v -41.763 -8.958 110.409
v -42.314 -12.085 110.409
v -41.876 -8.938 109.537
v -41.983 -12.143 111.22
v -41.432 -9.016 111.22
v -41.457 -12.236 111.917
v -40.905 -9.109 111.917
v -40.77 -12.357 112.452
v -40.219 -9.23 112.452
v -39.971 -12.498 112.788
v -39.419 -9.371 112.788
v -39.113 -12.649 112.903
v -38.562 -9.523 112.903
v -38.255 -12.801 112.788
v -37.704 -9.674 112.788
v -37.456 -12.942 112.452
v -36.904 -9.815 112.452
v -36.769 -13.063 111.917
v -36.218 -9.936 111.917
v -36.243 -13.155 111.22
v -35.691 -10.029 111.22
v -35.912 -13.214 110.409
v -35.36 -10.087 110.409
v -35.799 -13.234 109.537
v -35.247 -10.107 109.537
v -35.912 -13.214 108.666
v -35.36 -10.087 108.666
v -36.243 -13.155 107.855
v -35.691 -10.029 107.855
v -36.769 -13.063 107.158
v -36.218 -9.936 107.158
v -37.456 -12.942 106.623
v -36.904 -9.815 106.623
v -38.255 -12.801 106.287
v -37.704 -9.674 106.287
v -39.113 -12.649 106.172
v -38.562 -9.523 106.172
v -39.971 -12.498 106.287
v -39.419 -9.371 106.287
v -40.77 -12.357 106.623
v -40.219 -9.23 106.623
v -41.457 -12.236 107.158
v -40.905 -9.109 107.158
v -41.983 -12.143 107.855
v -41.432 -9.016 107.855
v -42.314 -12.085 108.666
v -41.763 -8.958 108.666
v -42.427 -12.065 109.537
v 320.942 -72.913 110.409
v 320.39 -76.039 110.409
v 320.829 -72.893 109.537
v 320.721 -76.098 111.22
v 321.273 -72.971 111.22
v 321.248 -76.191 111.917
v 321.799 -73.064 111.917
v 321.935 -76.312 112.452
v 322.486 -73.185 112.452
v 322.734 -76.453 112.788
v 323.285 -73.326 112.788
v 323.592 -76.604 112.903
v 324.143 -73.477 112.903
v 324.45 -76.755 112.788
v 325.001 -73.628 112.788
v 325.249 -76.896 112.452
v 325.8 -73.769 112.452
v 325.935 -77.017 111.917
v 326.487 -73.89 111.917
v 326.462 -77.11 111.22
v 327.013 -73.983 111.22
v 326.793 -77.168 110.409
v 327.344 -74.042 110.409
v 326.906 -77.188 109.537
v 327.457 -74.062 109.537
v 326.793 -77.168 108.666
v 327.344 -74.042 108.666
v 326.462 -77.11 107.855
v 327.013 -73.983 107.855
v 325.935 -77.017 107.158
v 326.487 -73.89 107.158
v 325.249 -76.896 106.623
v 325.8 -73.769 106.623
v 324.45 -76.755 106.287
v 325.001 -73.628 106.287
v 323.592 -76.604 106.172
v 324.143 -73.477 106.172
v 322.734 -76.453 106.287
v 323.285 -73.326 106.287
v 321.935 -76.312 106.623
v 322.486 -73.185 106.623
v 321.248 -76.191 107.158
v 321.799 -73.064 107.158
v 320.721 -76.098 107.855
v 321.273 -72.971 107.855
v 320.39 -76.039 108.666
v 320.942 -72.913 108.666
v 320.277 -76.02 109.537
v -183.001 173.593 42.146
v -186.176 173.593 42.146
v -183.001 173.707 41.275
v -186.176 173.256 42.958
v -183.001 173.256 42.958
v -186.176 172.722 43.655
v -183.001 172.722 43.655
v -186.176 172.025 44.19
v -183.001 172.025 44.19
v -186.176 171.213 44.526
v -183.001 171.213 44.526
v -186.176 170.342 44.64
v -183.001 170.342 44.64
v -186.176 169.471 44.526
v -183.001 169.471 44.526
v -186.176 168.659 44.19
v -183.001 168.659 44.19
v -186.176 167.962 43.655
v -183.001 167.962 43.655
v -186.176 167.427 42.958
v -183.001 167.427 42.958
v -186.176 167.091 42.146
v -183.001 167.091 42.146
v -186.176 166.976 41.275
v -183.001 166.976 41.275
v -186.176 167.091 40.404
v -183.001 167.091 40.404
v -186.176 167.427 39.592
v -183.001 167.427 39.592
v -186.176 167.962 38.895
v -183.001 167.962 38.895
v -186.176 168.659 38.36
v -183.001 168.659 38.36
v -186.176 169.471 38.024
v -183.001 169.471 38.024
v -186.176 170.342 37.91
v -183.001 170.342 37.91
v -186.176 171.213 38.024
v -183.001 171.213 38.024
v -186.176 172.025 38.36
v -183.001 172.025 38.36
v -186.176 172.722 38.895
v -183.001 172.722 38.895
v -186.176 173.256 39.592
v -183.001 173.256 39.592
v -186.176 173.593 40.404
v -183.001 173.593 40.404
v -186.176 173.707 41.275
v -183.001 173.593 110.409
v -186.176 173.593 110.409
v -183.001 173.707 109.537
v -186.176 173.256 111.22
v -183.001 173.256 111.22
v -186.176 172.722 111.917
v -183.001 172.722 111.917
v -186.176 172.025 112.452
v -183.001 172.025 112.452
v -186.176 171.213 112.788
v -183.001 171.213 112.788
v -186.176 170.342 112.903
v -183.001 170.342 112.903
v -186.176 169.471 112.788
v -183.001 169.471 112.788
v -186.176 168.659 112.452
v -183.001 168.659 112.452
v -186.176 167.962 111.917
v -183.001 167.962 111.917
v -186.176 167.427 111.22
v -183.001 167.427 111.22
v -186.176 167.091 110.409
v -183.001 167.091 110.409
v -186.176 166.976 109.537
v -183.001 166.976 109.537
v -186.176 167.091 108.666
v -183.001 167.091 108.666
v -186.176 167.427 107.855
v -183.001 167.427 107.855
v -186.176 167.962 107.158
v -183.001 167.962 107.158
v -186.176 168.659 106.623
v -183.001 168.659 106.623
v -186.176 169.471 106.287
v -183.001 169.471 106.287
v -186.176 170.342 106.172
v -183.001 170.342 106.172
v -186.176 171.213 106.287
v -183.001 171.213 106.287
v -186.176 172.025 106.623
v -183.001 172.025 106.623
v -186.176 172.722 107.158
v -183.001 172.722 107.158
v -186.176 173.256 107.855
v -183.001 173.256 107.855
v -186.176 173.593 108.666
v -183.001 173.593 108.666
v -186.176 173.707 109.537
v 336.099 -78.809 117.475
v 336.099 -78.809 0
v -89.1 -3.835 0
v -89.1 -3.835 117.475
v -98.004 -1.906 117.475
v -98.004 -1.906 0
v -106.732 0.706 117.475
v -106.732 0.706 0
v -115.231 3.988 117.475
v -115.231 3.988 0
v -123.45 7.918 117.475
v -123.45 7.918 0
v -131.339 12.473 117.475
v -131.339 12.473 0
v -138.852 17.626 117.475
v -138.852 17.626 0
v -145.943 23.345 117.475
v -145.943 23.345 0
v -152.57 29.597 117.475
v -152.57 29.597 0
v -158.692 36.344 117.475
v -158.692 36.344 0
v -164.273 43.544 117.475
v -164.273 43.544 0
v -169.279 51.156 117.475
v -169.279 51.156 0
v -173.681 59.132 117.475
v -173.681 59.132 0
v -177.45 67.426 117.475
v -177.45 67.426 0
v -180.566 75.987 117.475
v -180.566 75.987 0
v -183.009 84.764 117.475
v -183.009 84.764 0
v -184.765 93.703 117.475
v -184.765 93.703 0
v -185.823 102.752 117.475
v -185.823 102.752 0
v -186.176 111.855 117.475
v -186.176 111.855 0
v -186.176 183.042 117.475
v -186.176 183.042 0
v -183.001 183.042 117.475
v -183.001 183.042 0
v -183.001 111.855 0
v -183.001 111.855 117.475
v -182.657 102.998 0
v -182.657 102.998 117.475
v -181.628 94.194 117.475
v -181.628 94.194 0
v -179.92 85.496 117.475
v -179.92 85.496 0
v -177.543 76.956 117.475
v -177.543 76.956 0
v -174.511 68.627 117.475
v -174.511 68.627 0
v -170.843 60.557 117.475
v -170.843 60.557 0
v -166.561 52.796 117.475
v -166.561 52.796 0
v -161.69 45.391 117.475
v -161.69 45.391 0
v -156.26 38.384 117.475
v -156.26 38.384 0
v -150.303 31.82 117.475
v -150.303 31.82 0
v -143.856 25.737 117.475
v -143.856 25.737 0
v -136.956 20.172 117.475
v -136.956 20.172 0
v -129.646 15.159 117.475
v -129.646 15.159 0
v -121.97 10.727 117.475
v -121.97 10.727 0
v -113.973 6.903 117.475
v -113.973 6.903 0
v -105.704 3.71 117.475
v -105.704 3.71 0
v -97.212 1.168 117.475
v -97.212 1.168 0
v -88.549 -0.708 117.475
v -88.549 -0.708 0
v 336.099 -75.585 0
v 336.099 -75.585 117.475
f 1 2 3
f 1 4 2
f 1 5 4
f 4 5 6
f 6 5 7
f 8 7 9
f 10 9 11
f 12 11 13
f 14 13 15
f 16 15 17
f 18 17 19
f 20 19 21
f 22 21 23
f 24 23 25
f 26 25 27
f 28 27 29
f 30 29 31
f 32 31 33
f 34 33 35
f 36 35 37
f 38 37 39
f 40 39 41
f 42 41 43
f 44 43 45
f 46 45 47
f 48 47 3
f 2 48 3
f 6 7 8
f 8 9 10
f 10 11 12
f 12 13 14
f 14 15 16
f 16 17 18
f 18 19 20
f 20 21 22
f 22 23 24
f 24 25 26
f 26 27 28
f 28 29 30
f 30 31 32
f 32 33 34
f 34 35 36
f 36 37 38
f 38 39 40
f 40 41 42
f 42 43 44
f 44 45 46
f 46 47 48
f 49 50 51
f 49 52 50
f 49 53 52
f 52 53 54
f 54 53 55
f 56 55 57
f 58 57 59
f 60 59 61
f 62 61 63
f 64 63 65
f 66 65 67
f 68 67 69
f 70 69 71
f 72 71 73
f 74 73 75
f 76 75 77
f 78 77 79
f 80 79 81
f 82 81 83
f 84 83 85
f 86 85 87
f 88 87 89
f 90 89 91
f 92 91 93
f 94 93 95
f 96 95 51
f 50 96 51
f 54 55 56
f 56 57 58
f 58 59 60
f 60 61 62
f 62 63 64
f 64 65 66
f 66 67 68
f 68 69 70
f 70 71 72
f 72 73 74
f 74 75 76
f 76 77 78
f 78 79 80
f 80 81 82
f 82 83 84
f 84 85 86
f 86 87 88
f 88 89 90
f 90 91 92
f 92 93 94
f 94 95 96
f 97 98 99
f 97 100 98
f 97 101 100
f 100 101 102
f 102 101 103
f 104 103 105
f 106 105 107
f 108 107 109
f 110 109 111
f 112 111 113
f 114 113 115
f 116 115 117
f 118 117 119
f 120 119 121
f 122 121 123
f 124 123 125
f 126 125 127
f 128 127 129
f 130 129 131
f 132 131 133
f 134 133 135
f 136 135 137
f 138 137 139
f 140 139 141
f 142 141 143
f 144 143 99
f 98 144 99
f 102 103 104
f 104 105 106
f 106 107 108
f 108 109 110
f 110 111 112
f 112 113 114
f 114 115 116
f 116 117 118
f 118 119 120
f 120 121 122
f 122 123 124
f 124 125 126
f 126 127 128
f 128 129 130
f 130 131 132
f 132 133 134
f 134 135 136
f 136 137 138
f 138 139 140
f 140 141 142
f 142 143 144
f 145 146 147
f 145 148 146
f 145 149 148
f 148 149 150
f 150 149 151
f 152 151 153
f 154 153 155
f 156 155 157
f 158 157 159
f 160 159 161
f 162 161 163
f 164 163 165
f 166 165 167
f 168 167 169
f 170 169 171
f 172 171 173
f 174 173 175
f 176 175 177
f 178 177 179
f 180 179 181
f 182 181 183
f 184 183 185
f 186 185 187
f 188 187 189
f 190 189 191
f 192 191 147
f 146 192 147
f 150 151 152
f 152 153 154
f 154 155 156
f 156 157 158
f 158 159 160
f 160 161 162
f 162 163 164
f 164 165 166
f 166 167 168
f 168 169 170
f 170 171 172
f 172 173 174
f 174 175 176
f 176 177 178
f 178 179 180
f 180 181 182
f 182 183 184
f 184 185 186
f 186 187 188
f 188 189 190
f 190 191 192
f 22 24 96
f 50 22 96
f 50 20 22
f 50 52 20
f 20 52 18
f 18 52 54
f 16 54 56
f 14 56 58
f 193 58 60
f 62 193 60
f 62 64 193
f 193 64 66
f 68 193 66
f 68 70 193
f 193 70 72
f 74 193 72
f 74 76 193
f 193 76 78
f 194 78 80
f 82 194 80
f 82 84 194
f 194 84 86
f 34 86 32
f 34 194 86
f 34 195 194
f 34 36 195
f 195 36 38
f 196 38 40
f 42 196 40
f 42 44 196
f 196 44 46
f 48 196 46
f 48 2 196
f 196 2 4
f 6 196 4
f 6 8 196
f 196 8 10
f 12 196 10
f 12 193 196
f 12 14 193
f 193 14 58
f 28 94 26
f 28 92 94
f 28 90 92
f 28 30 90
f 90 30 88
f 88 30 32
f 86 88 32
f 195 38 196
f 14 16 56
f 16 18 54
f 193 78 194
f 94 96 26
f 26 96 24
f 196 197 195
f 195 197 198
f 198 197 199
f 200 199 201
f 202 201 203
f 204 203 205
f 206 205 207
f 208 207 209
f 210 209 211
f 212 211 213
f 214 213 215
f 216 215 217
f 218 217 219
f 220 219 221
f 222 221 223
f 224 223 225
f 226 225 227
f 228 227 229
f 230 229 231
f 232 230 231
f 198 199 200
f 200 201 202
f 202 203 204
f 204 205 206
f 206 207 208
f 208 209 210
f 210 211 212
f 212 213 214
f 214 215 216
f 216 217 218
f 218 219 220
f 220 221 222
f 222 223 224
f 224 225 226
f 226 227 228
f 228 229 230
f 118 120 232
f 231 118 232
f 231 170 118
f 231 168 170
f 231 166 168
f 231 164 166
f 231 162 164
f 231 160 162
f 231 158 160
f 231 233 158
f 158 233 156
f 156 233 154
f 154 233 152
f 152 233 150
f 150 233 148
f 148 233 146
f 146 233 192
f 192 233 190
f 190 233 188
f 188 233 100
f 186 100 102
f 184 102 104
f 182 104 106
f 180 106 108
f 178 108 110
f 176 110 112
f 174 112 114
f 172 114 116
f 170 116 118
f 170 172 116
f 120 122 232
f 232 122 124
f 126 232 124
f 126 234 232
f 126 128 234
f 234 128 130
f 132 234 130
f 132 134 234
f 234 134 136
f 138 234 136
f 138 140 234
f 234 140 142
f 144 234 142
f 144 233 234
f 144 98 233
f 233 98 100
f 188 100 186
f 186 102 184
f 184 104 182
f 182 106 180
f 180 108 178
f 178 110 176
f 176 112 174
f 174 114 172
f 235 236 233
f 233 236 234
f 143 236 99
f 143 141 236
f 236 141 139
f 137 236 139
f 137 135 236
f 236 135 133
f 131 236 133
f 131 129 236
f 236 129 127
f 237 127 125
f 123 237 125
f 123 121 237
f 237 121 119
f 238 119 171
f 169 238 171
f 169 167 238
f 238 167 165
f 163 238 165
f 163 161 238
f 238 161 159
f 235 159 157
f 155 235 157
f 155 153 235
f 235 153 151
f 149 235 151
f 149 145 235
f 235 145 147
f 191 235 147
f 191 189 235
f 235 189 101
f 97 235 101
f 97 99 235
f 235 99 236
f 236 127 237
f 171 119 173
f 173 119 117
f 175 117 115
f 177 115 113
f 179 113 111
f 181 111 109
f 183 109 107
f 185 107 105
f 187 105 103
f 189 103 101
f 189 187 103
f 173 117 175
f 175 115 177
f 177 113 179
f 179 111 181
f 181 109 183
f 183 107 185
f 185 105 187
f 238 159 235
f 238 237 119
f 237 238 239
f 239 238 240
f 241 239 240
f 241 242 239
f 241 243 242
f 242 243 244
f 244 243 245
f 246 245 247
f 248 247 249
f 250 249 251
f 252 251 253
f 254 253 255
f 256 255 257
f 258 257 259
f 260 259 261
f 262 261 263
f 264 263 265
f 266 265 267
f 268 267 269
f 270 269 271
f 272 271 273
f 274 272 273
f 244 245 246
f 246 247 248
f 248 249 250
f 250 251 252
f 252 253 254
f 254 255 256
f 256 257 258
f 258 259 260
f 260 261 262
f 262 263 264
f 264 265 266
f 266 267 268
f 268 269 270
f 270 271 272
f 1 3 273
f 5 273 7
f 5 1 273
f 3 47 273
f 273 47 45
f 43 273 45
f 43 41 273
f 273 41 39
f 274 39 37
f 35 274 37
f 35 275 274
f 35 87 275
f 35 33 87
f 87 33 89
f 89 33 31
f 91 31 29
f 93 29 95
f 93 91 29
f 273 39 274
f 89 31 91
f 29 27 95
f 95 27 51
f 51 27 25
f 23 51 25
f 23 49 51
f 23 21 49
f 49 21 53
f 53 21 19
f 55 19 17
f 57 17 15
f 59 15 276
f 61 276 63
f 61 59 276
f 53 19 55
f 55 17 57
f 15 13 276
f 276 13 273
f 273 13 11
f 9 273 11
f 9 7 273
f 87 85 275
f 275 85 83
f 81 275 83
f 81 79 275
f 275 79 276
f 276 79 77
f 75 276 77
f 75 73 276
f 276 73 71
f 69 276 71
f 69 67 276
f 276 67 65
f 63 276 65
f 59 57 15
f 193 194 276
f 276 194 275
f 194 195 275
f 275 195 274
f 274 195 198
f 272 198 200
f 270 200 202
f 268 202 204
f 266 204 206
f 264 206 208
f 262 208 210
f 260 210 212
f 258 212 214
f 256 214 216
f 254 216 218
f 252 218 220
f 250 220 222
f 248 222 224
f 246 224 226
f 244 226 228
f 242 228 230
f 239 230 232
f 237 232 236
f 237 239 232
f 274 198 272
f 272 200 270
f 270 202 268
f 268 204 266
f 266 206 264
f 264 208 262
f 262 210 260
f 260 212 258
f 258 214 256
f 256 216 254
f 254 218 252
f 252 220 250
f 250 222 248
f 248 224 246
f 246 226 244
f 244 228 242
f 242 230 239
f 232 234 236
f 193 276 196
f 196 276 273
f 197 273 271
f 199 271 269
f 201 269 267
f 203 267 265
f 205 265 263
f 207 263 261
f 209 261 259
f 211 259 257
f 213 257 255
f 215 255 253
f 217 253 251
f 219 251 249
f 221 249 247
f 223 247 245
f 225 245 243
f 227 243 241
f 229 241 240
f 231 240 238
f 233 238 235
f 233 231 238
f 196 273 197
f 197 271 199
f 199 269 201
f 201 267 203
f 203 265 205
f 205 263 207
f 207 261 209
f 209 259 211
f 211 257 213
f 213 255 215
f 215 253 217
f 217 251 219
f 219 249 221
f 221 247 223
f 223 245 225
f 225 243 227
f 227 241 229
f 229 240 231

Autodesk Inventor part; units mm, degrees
ref_plane "YZ Plane" through (0, 0, 0) normal (1, 0, 0) x (0, 1, 0)
ref_plane "XZ Plane" through (0, 0, 0) normal (0, 1, 0) x (-1, 0, 0)
ref_plane "XY Plane" through (0, 0, 0) normal (0, 0, 1) x (1, 0, 0)
sketch "Sketch1" plane through (0, 0, 0) normal (0, 0, 1) x (1, 0, 0)
  line L0 (-89.1004, -3.8352) -> (336.0988, -78.8093) projected
  line L1 (336.0988, -75.5853) -> (336.0988, -78.8093) projected
  line L2 (336.0988, -75.5853) -> (-88.549, -0.7084) projected
  line L3 (-183.001, 111.8551) -> (-183.001, 183.0419) projected
  line L4 (-186.176, 183.0419) -> (-183.001, 183.0419) projected
  line L5 (-186.176, 183.0419) -> (-186.176, 111.8551) projected
  arc A0 (-186.176, 111.8551) -> (-89.1004, -3.8352) centre (-68.701, 111.8551) ccw projected
  arc A1 (-183.001, 111.8551) -> (-88.549, -0.7084) centre (-68.701, 111.8551) ccw projected
  point P0 (0, 0)
extrude "Extrusion1" add sketch "Sketch1" along normal blind 117.475
hole "Hole1" at (-186.176, 170.3419, 109.5375) direction (1, 0, 0) diameter 6.731 depth 25.4 tip angle 118
pattern_linear "Rectangular Pattern1" count 2 spacing 68.2625 along (0, 0, -1) of "Hole1"
hole "Hole2" at (323.5917, -76.6039, 109.5375) direction (0.1736482, 0.9848078, 0) diameter 6.731 depth 25.4 tip angle 118
pattern_linear "Rectangular Pattern2" count 2 spacing 368.3 along (-0.9848078, 0.1736482, 0) of "Hole2"
properties part number "GE-12086-02"
